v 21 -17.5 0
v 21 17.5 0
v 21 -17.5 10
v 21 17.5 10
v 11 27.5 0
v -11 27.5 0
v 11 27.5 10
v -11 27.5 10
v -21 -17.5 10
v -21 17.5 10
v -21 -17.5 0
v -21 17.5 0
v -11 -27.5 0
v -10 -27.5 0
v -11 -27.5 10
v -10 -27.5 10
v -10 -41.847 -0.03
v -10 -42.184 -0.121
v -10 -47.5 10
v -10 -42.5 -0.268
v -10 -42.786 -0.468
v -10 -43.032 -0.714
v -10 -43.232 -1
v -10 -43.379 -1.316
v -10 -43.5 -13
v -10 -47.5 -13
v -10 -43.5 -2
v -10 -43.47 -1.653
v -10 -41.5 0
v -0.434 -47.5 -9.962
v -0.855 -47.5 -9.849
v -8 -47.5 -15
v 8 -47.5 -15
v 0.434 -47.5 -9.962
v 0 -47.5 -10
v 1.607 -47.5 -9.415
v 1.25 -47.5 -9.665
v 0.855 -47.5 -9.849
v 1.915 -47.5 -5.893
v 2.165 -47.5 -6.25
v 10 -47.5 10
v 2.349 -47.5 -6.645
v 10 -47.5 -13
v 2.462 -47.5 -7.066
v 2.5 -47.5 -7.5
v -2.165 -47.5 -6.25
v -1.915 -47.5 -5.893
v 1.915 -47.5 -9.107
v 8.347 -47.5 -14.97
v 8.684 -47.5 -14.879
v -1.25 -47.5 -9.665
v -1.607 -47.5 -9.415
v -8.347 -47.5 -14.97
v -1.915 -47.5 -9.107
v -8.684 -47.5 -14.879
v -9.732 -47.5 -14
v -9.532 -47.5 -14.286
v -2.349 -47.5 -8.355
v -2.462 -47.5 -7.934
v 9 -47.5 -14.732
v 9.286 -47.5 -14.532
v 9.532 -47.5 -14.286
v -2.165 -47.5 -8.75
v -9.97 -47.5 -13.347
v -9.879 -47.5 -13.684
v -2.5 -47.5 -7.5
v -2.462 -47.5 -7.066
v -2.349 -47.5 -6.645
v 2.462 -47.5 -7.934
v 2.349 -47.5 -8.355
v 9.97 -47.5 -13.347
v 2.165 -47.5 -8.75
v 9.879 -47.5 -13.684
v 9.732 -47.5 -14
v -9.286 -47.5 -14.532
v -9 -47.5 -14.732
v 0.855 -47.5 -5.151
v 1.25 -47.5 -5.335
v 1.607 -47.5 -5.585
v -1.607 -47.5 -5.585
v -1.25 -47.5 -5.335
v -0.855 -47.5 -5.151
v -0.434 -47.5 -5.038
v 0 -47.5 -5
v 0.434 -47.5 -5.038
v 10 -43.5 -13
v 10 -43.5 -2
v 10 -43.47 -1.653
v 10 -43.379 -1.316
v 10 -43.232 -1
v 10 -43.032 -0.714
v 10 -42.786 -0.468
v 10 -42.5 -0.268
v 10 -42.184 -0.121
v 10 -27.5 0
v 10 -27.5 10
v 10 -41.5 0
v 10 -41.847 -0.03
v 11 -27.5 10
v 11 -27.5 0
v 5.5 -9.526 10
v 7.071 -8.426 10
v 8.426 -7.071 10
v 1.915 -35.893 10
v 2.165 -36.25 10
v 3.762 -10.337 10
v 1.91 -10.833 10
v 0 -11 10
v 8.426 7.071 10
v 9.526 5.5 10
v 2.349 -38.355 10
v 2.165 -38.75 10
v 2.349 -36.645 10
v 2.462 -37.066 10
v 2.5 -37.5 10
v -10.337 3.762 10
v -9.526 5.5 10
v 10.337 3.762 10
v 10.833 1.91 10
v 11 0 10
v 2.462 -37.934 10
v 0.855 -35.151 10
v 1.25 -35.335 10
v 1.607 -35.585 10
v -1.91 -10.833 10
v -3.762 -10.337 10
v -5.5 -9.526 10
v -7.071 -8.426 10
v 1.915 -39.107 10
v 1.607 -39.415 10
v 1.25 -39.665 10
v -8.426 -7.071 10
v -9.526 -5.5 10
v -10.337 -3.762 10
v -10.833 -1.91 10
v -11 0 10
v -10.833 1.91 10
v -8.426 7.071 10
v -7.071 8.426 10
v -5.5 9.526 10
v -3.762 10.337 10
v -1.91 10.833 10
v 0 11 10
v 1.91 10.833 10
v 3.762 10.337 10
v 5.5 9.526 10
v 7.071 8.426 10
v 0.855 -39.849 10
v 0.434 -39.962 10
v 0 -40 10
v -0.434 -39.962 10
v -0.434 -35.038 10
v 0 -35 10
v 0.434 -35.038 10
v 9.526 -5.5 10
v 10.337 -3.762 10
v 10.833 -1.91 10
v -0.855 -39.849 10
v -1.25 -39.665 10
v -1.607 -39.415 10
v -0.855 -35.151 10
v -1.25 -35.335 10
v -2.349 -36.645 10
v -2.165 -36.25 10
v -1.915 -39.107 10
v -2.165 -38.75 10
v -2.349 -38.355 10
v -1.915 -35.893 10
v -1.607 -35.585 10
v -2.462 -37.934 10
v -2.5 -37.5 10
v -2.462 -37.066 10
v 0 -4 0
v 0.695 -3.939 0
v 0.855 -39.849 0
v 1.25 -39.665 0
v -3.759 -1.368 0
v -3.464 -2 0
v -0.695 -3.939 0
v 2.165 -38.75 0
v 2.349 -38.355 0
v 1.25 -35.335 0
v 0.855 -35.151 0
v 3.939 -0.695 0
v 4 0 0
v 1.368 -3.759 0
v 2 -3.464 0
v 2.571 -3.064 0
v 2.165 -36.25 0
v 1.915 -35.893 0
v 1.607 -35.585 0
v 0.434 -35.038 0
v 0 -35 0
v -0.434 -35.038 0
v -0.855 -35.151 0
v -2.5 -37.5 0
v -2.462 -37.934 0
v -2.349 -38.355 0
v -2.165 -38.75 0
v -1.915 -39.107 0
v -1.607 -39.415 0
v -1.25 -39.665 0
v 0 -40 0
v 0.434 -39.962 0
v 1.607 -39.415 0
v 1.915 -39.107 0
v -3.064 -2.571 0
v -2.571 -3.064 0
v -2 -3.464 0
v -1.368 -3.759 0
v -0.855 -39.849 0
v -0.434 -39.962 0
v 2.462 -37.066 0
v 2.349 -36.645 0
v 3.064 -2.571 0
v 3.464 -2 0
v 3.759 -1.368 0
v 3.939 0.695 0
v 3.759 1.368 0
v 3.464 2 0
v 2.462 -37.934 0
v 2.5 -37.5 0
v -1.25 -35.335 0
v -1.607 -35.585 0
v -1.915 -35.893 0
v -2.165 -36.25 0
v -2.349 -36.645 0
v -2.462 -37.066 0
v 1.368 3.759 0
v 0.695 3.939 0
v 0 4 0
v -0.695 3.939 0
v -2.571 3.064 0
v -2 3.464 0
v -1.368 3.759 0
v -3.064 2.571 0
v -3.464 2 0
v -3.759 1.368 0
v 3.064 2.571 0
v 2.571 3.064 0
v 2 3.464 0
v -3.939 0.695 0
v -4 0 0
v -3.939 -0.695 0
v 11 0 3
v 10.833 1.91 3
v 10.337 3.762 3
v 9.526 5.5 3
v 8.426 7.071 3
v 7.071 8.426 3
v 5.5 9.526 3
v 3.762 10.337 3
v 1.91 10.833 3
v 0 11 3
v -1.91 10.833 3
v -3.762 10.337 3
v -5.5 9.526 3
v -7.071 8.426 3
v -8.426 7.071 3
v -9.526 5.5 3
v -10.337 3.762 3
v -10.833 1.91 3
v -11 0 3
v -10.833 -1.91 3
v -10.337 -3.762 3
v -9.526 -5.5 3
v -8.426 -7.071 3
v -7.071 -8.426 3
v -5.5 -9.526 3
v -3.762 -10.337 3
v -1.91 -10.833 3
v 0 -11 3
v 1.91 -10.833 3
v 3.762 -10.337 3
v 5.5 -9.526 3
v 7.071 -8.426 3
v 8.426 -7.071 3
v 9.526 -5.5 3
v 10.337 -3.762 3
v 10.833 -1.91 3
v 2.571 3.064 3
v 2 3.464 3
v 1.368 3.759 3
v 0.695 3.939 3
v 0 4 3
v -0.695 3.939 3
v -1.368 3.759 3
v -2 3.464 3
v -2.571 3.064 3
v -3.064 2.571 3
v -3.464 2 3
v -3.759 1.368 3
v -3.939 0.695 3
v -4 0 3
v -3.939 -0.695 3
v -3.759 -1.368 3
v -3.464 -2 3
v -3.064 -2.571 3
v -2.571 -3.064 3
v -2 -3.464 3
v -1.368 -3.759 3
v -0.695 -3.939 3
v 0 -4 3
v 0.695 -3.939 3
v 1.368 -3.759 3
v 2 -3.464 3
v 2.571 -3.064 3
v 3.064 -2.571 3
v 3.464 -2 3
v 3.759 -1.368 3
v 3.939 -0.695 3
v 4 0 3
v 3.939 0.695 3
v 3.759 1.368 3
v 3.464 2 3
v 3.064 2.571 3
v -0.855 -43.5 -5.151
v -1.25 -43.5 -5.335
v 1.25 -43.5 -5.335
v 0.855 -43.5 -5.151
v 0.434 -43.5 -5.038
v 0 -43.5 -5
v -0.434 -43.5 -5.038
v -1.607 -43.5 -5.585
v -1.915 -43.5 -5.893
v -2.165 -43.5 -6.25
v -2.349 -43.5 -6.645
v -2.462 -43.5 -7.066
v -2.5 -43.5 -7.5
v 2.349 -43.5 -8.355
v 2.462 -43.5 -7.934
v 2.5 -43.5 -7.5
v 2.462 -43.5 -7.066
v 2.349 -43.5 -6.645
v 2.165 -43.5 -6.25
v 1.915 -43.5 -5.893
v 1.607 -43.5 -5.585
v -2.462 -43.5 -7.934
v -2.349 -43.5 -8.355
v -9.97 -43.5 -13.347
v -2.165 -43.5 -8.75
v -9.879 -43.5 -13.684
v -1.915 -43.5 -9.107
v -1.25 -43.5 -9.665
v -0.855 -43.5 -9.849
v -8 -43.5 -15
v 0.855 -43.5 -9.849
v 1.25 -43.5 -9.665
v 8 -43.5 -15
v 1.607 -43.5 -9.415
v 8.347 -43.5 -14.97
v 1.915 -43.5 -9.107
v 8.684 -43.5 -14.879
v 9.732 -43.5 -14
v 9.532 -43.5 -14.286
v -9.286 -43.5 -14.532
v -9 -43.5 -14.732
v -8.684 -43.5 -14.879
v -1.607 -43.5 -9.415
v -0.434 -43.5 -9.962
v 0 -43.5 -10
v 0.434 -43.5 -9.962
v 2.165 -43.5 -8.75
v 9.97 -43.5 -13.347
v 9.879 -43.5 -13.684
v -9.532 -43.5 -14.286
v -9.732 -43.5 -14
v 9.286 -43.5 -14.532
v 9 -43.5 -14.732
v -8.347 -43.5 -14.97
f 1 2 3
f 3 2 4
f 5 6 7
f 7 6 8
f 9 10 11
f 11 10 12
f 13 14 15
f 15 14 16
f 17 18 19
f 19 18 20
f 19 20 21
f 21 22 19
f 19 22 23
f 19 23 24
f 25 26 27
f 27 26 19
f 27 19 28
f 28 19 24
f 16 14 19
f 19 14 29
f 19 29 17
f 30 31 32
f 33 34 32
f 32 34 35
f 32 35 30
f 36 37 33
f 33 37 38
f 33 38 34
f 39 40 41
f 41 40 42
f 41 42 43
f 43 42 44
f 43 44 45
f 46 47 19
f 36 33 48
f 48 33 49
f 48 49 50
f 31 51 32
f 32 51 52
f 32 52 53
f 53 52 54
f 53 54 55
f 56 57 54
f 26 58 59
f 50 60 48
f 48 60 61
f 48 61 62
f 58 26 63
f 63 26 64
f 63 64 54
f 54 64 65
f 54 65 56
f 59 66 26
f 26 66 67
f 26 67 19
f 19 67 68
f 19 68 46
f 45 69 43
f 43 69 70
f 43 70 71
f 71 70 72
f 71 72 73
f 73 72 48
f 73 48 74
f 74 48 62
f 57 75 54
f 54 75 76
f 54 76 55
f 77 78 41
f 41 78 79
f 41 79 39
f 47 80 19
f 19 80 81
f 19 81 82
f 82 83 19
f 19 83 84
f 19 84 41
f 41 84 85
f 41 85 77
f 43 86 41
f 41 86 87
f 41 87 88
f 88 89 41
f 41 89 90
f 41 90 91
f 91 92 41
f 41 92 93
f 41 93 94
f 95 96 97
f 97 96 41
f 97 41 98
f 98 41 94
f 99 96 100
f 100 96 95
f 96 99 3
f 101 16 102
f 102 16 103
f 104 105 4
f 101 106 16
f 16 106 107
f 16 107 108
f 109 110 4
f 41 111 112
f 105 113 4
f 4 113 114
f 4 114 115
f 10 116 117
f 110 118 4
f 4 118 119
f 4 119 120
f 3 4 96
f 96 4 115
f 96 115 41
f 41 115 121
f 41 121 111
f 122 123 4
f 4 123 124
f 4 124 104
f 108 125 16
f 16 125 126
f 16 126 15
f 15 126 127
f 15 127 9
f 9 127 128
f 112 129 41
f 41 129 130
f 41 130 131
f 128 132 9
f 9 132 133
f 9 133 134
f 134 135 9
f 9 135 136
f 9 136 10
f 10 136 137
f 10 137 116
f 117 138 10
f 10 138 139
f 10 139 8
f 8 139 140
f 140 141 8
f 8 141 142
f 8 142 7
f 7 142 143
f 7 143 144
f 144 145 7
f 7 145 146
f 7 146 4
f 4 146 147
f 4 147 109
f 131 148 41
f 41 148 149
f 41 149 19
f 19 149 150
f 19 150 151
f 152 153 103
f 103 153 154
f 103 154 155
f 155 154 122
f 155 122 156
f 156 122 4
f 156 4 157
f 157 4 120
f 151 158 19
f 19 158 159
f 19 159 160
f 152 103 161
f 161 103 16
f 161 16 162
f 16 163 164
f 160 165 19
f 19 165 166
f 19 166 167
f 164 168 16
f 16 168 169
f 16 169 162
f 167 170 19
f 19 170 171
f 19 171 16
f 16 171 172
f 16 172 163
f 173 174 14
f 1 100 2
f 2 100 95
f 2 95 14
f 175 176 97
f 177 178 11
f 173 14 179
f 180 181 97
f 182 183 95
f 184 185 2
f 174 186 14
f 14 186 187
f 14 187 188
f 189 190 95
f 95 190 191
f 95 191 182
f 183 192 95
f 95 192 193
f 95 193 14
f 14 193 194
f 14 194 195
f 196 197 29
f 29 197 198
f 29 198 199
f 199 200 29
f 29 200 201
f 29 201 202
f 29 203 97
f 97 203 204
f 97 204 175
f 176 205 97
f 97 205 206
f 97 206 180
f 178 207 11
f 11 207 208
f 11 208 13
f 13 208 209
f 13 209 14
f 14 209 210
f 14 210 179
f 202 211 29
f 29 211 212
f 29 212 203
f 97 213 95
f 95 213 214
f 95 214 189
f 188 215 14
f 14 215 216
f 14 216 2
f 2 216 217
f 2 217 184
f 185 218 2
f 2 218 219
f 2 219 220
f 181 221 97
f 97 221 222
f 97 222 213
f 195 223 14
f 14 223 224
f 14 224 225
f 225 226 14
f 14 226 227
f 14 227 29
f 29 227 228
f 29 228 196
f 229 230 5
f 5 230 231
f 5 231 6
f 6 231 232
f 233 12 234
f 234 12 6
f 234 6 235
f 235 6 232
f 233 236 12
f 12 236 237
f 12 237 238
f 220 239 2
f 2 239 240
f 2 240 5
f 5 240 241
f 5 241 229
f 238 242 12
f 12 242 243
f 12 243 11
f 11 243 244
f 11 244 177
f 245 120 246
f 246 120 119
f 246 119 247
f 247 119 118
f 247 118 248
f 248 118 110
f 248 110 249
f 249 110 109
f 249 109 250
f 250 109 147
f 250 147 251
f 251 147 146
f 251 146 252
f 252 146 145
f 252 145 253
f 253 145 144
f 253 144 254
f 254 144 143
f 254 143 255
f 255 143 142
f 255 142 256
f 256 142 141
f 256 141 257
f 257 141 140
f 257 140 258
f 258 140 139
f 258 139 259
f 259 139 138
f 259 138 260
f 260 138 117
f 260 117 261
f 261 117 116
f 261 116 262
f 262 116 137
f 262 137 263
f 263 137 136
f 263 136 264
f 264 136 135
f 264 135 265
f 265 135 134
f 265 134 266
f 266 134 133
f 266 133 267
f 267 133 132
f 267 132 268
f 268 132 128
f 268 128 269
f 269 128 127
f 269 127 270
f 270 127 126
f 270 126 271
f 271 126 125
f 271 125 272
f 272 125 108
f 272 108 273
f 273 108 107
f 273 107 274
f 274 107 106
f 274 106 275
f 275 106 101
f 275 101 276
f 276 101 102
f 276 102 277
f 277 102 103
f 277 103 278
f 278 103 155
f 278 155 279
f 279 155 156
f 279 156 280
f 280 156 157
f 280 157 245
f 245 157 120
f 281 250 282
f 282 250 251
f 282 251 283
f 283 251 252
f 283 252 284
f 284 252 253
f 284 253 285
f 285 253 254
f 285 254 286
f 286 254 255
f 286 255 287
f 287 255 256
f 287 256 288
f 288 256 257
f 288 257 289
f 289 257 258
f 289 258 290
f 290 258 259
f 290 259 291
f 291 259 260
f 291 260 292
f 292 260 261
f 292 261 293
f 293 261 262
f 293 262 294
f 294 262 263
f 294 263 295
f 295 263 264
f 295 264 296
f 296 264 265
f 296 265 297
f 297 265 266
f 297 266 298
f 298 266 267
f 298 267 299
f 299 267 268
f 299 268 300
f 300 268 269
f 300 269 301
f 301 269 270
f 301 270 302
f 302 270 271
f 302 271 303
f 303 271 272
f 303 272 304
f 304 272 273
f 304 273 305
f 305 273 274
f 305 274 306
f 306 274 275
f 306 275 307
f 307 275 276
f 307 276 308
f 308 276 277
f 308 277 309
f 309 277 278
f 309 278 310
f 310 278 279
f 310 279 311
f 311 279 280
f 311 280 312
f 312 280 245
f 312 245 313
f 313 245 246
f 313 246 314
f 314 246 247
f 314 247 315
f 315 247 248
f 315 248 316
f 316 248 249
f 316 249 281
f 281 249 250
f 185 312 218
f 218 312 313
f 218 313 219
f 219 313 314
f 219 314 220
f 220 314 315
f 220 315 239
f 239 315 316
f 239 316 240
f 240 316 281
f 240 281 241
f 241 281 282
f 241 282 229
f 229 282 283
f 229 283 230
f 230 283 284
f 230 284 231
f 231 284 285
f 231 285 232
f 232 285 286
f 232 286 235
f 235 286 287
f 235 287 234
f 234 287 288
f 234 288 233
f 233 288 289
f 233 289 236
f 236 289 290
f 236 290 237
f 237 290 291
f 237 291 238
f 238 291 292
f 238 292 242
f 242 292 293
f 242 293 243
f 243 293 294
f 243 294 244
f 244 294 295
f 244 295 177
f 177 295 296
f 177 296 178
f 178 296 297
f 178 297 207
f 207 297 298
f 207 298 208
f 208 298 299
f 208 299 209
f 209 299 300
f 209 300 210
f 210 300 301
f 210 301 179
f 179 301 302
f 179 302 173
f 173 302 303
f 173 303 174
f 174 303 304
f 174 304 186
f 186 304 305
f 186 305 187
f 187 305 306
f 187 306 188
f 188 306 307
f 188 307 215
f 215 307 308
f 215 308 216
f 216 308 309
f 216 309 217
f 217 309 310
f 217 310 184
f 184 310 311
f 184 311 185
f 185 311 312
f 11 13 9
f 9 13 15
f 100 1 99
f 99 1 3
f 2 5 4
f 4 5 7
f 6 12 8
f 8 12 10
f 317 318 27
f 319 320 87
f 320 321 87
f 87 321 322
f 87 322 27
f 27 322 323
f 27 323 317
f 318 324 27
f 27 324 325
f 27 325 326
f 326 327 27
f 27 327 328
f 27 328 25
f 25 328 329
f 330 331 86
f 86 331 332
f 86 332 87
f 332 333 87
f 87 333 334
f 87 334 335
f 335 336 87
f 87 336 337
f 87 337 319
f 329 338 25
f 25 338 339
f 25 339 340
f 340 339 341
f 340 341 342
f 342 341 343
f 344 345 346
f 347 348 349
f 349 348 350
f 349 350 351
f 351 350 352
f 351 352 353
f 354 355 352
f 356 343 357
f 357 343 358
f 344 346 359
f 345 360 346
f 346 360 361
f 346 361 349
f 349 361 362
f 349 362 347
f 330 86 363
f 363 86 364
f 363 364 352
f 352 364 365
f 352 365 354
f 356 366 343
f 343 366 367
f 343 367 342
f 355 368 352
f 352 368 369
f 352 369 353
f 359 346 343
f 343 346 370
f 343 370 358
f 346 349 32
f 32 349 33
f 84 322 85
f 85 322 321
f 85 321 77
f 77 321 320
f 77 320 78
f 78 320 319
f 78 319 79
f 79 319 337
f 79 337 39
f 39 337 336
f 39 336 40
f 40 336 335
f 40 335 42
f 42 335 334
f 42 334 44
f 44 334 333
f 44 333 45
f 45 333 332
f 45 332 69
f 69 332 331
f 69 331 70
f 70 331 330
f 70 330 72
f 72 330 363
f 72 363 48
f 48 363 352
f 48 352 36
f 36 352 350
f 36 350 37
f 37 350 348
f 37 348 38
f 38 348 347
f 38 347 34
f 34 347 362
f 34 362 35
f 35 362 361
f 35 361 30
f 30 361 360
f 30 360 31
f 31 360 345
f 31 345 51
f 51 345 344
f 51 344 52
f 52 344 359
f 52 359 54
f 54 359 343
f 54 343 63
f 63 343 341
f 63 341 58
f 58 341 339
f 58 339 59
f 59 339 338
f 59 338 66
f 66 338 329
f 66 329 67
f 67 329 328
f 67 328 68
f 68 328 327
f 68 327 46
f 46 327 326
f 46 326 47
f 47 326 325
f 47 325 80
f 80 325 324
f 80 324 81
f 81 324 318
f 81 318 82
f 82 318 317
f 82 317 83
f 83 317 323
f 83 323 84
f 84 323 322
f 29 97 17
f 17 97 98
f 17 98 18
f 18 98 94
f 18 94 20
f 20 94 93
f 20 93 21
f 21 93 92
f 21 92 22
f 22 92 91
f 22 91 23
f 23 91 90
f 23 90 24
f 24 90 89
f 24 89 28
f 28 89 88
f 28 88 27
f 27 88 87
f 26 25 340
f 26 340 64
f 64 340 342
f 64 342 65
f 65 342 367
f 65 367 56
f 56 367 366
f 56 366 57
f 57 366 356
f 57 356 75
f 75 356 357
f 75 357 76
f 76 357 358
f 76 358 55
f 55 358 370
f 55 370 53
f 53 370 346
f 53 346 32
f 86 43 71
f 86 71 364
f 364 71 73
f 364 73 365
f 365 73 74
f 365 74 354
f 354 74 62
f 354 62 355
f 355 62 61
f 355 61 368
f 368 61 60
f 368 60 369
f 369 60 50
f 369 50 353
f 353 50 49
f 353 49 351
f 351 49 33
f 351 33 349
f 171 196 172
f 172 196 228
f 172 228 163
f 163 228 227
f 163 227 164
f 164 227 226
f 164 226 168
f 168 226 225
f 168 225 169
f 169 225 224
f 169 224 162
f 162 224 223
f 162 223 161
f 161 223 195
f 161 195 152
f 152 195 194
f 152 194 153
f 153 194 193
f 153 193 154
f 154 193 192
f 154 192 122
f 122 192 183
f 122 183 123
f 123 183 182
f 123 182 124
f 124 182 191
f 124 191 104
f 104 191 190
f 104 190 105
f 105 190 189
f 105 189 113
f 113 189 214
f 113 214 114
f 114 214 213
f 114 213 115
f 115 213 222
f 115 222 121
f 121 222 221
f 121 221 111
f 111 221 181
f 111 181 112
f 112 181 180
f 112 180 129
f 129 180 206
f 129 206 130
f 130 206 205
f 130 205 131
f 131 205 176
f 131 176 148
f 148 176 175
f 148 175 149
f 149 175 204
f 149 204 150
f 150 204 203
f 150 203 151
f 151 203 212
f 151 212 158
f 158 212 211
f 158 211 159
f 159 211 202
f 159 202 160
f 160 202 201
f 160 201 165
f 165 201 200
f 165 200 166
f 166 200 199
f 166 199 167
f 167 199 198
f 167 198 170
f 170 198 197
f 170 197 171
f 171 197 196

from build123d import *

# Parameters (mm, degrees)
ESTRUSIONE_ESTRUSIONE1_DEPTH = 10
SCHIZZO6_R                   = 11
TAGLIO_ESTRUSIONE4_DEPTH     = 7
SCHIZZO7_R                   = 4
TAGLIO_ESTRUSIONE5_DEPTH     = 4
SMUSSO2_SIZE                 = 10
SCHIZZO8_W                   = 20
SCHIZZO8_H                   = 4
ESTRUSIONE_ESTRUSIONE3_DEPTH = 15
SCHIZZO9_R                   = 2.5
TAGLIO_ESTRUSIONE6_DEPTH     = 35
RACCORDO1_R                  = 2
SCHIZZO10_R                  = 2.5
TAGLIO_ESTRUSIONE7_DEPTH     = 10


with BuildPart() as part:
    # Schizzo1 → Estrusione-Estrusione1 (new body)
    with BuildSketch(Plane.XY):
        Polygon((-10, -47.5), (10, -47.5), (10, -27.5), (21, -27.5), (21, 27.5), (-21, 27.5), (-21, -27.5), (-10, -27.5), align=None)
    extrude(amount=ESTRUSIONE_ESTRUSIONE1_DEPTH)

    # Schizzo6 → Taglio-Estrusione4 (cut)
    with BuildSketch(Plane.XY.offset(10)):
        Circle(SCHIZZO6_R)
    extrude(amount=-TAGLIO_ESTRUSIONE4_DEPTH, mode=Mode.SUBTRACT)

    # Schizzo7 → Taglio-Estrusione5 (cut, through all)
    with BuildSketch(Plane.XY.offset(3)):
        Circle(SCHIZZO7_R)
    extrude(amount=-TAGLIO_ESTRUSIONE5_DEPTH, mode=Mode.SUBTRACT)

    # Smusso2
    smusso2_edges = [part.edges().sort_by_distance(p)[0] for p in [
        (21, -27.5, 5),
        (-21, -27.5, 5),
        (-21, 27.5, 5),
        (21, 27.5, 5),
    ]]
    chamfer(smusso2_edges, length=SMUSSO2_SIZE)

    # Schizzo8 → Estrusione-Estrusione3 (add)
    with BuildSketch(Plane(origin=(0, 0, 0), x_dir=(-1, 0, 0), z_dir=(0, 0, -1))):
        with Locations((0, -45.5)):
            Rectangle(SCHIZZO8_W, SCHIZZO8_H)
    extrude(amount=ESTRUSIONE_ESTRUSIONE3_DEPTH)

    # Schizzo9 → Taglio-Estrusione6 (cut)
    with BuildSketch(Plane(origin=(0, -43.5, 0), x_dir=(1, 0, 0), z_dir=(0, 1, 0))):
        with Locations((0, 7.5)):
            Circle(SCHIZZO9_R)
    extrude(amount=-TAGLIO_ESTRUSIONE6_DEPTH, mode=Mode.SUBTRACT)

    # Raccordo1
    raccordo1_edges = [part.edges().sort_by_distance(p)[0] for p in [
        (0, -43.5, 0),
        (10, -45.5, -15),
        (-10, -45.5, -15),
    ]]
    fillet(raccordo1_edges, radius=RACCORDO1_R)

    # Schizzo10 → Taglio-Estrusione7 (cut)
    with BuildSketch(Plane(origin=(0, 0, 0), x_dir=(-1, 0, 0), z_dir=(0, 0, -1))):
        with Locations((0, -37.5)):
            Circle(SCHIZZO10_R)
    extrude(amount=-TAGLIO_ESTRUSIONE7_DEPTH, mode=Mode.SUBTRACT)


solid = part.part
